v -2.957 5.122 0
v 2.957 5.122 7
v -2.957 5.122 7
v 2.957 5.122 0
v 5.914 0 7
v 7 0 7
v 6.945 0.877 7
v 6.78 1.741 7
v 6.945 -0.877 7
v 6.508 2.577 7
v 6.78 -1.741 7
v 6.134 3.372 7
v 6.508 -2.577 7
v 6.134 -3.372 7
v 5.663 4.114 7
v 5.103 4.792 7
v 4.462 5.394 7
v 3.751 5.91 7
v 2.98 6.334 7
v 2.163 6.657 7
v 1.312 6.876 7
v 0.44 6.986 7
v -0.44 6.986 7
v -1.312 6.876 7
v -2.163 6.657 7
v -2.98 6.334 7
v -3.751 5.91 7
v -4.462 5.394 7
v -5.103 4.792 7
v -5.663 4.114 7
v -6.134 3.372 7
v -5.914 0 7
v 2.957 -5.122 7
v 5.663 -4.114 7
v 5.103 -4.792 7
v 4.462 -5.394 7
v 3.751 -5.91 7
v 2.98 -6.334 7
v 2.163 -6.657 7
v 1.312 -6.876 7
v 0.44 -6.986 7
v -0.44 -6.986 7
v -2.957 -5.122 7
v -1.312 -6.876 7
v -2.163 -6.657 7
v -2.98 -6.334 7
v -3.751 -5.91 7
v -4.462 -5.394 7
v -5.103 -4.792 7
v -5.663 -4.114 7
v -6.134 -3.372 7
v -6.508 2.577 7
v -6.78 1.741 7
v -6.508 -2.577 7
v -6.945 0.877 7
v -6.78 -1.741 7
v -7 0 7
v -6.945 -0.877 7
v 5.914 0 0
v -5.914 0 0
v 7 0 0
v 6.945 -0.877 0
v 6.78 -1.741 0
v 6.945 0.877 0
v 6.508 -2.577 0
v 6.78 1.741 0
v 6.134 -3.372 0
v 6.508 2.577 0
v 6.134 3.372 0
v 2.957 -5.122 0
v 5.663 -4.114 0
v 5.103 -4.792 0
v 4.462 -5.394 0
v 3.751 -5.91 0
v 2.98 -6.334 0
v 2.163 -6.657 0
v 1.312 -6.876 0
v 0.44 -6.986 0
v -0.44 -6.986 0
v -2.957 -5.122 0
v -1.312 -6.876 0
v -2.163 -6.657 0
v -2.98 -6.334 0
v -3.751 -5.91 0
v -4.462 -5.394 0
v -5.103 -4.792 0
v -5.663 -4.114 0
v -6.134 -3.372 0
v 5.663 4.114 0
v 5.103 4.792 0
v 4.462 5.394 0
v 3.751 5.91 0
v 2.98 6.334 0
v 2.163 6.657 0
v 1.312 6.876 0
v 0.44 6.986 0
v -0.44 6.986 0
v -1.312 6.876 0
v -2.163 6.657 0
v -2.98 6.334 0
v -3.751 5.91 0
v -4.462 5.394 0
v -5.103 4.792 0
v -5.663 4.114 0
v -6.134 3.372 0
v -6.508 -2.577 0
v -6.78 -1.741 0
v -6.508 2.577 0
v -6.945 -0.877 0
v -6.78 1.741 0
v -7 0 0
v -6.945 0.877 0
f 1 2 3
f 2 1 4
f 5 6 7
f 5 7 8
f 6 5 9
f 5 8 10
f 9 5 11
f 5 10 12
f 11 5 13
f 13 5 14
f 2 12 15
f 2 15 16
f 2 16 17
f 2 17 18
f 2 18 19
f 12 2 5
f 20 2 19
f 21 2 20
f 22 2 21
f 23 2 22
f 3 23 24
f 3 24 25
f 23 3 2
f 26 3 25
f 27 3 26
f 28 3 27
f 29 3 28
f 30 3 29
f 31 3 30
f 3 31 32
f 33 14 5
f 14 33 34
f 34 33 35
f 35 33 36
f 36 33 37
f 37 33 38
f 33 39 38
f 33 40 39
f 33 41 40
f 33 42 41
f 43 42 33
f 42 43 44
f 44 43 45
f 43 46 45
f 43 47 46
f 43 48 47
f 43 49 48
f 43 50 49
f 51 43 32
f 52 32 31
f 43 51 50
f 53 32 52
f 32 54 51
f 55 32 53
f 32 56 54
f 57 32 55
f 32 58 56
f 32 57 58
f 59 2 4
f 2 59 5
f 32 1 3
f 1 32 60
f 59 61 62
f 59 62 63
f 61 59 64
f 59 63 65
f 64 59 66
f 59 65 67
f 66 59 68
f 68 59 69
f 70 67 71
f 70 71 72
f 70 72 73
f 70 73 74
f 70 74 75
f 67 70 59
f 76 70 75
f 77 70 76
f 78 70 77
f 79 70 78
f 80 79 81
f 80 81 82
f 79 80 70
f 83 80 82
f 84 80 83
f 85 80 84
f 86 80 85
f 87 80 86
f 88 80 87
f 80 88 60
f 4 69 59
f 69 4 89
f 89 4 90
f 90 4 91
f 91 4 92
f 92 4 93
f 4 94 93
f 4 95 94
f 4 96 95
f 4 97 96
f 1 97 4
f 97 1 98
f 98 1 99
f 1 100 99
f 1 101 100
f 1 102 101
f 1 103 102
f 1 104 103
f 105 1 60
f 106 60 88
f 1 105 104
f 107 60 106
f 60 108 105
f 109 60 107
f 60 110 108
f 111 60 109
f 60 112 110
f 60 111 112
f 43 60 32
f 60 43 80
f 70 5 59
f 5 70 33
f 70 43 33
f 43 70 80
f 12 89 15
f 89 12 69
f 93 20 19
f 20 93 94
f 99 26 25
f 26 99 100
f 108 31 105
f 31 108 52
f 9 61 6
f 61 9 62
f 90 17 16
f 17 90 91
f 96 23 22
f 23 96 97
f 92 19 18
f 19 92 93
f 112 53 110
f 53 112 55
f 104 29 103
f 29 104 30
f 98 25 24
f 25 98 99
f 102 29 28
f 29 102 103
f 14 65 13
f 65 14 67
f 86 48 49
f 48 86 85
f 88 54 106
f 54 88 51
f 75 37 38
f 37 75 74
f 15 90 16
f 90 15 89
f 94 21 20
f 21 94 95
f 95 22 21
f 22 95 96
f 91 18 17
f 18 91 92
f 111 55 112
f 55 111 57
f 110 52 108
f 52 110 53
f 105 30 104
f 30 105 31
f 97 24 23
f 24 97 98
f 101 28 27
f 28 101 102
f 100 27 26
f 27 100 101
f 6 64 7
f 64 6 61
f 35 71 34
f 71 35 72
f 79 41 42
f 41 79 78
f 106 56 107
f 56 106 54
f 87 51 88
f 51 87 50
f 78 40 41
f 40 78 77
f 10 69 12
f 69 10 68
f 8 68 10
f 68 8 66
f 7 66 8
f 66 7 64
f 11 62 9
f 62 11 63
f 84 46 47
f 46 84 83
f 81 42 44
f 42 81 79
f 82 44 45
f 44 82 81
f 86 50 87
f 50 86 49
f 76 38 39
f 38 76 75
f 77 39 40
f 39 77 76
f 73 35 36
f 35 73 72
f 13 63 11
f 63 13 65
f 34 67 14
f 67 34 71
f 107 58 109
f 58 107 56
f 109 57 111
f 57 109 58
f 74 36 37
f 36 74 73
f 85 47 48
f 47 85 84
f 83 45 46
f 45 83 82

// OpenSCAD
$fn = 50;


difference() {
	union() {
		cylinder(h = 7, r = 7.0000000000);
	}
	union() {
		translate(v = [0, 0, 0]) {
			rotate(a = [0, 0, 0]) {
				difference() {
					union() {
						#linear_extrude(height = 7) {
							polygon(points = [[5.9142500000, 0.0000000000], [2.9571250000, 5.1218907443], [-2.9571250000, 5.1218907443], [-5.9142500000, 0.0000000000], [-2.9571250000, -5.1218907443], [2.9571250000, -5.1218907443]]);
						}
					}
					union();
				}
			}
		}
		translate(v = [0, 0, -100]) {
			cylinder(h = 200, r = 3.2500000000);
		}
		translate(v = [0, 0, -100]) {
			cylinder(h = 200, r = 1.8000000000);
		}
	}
}
